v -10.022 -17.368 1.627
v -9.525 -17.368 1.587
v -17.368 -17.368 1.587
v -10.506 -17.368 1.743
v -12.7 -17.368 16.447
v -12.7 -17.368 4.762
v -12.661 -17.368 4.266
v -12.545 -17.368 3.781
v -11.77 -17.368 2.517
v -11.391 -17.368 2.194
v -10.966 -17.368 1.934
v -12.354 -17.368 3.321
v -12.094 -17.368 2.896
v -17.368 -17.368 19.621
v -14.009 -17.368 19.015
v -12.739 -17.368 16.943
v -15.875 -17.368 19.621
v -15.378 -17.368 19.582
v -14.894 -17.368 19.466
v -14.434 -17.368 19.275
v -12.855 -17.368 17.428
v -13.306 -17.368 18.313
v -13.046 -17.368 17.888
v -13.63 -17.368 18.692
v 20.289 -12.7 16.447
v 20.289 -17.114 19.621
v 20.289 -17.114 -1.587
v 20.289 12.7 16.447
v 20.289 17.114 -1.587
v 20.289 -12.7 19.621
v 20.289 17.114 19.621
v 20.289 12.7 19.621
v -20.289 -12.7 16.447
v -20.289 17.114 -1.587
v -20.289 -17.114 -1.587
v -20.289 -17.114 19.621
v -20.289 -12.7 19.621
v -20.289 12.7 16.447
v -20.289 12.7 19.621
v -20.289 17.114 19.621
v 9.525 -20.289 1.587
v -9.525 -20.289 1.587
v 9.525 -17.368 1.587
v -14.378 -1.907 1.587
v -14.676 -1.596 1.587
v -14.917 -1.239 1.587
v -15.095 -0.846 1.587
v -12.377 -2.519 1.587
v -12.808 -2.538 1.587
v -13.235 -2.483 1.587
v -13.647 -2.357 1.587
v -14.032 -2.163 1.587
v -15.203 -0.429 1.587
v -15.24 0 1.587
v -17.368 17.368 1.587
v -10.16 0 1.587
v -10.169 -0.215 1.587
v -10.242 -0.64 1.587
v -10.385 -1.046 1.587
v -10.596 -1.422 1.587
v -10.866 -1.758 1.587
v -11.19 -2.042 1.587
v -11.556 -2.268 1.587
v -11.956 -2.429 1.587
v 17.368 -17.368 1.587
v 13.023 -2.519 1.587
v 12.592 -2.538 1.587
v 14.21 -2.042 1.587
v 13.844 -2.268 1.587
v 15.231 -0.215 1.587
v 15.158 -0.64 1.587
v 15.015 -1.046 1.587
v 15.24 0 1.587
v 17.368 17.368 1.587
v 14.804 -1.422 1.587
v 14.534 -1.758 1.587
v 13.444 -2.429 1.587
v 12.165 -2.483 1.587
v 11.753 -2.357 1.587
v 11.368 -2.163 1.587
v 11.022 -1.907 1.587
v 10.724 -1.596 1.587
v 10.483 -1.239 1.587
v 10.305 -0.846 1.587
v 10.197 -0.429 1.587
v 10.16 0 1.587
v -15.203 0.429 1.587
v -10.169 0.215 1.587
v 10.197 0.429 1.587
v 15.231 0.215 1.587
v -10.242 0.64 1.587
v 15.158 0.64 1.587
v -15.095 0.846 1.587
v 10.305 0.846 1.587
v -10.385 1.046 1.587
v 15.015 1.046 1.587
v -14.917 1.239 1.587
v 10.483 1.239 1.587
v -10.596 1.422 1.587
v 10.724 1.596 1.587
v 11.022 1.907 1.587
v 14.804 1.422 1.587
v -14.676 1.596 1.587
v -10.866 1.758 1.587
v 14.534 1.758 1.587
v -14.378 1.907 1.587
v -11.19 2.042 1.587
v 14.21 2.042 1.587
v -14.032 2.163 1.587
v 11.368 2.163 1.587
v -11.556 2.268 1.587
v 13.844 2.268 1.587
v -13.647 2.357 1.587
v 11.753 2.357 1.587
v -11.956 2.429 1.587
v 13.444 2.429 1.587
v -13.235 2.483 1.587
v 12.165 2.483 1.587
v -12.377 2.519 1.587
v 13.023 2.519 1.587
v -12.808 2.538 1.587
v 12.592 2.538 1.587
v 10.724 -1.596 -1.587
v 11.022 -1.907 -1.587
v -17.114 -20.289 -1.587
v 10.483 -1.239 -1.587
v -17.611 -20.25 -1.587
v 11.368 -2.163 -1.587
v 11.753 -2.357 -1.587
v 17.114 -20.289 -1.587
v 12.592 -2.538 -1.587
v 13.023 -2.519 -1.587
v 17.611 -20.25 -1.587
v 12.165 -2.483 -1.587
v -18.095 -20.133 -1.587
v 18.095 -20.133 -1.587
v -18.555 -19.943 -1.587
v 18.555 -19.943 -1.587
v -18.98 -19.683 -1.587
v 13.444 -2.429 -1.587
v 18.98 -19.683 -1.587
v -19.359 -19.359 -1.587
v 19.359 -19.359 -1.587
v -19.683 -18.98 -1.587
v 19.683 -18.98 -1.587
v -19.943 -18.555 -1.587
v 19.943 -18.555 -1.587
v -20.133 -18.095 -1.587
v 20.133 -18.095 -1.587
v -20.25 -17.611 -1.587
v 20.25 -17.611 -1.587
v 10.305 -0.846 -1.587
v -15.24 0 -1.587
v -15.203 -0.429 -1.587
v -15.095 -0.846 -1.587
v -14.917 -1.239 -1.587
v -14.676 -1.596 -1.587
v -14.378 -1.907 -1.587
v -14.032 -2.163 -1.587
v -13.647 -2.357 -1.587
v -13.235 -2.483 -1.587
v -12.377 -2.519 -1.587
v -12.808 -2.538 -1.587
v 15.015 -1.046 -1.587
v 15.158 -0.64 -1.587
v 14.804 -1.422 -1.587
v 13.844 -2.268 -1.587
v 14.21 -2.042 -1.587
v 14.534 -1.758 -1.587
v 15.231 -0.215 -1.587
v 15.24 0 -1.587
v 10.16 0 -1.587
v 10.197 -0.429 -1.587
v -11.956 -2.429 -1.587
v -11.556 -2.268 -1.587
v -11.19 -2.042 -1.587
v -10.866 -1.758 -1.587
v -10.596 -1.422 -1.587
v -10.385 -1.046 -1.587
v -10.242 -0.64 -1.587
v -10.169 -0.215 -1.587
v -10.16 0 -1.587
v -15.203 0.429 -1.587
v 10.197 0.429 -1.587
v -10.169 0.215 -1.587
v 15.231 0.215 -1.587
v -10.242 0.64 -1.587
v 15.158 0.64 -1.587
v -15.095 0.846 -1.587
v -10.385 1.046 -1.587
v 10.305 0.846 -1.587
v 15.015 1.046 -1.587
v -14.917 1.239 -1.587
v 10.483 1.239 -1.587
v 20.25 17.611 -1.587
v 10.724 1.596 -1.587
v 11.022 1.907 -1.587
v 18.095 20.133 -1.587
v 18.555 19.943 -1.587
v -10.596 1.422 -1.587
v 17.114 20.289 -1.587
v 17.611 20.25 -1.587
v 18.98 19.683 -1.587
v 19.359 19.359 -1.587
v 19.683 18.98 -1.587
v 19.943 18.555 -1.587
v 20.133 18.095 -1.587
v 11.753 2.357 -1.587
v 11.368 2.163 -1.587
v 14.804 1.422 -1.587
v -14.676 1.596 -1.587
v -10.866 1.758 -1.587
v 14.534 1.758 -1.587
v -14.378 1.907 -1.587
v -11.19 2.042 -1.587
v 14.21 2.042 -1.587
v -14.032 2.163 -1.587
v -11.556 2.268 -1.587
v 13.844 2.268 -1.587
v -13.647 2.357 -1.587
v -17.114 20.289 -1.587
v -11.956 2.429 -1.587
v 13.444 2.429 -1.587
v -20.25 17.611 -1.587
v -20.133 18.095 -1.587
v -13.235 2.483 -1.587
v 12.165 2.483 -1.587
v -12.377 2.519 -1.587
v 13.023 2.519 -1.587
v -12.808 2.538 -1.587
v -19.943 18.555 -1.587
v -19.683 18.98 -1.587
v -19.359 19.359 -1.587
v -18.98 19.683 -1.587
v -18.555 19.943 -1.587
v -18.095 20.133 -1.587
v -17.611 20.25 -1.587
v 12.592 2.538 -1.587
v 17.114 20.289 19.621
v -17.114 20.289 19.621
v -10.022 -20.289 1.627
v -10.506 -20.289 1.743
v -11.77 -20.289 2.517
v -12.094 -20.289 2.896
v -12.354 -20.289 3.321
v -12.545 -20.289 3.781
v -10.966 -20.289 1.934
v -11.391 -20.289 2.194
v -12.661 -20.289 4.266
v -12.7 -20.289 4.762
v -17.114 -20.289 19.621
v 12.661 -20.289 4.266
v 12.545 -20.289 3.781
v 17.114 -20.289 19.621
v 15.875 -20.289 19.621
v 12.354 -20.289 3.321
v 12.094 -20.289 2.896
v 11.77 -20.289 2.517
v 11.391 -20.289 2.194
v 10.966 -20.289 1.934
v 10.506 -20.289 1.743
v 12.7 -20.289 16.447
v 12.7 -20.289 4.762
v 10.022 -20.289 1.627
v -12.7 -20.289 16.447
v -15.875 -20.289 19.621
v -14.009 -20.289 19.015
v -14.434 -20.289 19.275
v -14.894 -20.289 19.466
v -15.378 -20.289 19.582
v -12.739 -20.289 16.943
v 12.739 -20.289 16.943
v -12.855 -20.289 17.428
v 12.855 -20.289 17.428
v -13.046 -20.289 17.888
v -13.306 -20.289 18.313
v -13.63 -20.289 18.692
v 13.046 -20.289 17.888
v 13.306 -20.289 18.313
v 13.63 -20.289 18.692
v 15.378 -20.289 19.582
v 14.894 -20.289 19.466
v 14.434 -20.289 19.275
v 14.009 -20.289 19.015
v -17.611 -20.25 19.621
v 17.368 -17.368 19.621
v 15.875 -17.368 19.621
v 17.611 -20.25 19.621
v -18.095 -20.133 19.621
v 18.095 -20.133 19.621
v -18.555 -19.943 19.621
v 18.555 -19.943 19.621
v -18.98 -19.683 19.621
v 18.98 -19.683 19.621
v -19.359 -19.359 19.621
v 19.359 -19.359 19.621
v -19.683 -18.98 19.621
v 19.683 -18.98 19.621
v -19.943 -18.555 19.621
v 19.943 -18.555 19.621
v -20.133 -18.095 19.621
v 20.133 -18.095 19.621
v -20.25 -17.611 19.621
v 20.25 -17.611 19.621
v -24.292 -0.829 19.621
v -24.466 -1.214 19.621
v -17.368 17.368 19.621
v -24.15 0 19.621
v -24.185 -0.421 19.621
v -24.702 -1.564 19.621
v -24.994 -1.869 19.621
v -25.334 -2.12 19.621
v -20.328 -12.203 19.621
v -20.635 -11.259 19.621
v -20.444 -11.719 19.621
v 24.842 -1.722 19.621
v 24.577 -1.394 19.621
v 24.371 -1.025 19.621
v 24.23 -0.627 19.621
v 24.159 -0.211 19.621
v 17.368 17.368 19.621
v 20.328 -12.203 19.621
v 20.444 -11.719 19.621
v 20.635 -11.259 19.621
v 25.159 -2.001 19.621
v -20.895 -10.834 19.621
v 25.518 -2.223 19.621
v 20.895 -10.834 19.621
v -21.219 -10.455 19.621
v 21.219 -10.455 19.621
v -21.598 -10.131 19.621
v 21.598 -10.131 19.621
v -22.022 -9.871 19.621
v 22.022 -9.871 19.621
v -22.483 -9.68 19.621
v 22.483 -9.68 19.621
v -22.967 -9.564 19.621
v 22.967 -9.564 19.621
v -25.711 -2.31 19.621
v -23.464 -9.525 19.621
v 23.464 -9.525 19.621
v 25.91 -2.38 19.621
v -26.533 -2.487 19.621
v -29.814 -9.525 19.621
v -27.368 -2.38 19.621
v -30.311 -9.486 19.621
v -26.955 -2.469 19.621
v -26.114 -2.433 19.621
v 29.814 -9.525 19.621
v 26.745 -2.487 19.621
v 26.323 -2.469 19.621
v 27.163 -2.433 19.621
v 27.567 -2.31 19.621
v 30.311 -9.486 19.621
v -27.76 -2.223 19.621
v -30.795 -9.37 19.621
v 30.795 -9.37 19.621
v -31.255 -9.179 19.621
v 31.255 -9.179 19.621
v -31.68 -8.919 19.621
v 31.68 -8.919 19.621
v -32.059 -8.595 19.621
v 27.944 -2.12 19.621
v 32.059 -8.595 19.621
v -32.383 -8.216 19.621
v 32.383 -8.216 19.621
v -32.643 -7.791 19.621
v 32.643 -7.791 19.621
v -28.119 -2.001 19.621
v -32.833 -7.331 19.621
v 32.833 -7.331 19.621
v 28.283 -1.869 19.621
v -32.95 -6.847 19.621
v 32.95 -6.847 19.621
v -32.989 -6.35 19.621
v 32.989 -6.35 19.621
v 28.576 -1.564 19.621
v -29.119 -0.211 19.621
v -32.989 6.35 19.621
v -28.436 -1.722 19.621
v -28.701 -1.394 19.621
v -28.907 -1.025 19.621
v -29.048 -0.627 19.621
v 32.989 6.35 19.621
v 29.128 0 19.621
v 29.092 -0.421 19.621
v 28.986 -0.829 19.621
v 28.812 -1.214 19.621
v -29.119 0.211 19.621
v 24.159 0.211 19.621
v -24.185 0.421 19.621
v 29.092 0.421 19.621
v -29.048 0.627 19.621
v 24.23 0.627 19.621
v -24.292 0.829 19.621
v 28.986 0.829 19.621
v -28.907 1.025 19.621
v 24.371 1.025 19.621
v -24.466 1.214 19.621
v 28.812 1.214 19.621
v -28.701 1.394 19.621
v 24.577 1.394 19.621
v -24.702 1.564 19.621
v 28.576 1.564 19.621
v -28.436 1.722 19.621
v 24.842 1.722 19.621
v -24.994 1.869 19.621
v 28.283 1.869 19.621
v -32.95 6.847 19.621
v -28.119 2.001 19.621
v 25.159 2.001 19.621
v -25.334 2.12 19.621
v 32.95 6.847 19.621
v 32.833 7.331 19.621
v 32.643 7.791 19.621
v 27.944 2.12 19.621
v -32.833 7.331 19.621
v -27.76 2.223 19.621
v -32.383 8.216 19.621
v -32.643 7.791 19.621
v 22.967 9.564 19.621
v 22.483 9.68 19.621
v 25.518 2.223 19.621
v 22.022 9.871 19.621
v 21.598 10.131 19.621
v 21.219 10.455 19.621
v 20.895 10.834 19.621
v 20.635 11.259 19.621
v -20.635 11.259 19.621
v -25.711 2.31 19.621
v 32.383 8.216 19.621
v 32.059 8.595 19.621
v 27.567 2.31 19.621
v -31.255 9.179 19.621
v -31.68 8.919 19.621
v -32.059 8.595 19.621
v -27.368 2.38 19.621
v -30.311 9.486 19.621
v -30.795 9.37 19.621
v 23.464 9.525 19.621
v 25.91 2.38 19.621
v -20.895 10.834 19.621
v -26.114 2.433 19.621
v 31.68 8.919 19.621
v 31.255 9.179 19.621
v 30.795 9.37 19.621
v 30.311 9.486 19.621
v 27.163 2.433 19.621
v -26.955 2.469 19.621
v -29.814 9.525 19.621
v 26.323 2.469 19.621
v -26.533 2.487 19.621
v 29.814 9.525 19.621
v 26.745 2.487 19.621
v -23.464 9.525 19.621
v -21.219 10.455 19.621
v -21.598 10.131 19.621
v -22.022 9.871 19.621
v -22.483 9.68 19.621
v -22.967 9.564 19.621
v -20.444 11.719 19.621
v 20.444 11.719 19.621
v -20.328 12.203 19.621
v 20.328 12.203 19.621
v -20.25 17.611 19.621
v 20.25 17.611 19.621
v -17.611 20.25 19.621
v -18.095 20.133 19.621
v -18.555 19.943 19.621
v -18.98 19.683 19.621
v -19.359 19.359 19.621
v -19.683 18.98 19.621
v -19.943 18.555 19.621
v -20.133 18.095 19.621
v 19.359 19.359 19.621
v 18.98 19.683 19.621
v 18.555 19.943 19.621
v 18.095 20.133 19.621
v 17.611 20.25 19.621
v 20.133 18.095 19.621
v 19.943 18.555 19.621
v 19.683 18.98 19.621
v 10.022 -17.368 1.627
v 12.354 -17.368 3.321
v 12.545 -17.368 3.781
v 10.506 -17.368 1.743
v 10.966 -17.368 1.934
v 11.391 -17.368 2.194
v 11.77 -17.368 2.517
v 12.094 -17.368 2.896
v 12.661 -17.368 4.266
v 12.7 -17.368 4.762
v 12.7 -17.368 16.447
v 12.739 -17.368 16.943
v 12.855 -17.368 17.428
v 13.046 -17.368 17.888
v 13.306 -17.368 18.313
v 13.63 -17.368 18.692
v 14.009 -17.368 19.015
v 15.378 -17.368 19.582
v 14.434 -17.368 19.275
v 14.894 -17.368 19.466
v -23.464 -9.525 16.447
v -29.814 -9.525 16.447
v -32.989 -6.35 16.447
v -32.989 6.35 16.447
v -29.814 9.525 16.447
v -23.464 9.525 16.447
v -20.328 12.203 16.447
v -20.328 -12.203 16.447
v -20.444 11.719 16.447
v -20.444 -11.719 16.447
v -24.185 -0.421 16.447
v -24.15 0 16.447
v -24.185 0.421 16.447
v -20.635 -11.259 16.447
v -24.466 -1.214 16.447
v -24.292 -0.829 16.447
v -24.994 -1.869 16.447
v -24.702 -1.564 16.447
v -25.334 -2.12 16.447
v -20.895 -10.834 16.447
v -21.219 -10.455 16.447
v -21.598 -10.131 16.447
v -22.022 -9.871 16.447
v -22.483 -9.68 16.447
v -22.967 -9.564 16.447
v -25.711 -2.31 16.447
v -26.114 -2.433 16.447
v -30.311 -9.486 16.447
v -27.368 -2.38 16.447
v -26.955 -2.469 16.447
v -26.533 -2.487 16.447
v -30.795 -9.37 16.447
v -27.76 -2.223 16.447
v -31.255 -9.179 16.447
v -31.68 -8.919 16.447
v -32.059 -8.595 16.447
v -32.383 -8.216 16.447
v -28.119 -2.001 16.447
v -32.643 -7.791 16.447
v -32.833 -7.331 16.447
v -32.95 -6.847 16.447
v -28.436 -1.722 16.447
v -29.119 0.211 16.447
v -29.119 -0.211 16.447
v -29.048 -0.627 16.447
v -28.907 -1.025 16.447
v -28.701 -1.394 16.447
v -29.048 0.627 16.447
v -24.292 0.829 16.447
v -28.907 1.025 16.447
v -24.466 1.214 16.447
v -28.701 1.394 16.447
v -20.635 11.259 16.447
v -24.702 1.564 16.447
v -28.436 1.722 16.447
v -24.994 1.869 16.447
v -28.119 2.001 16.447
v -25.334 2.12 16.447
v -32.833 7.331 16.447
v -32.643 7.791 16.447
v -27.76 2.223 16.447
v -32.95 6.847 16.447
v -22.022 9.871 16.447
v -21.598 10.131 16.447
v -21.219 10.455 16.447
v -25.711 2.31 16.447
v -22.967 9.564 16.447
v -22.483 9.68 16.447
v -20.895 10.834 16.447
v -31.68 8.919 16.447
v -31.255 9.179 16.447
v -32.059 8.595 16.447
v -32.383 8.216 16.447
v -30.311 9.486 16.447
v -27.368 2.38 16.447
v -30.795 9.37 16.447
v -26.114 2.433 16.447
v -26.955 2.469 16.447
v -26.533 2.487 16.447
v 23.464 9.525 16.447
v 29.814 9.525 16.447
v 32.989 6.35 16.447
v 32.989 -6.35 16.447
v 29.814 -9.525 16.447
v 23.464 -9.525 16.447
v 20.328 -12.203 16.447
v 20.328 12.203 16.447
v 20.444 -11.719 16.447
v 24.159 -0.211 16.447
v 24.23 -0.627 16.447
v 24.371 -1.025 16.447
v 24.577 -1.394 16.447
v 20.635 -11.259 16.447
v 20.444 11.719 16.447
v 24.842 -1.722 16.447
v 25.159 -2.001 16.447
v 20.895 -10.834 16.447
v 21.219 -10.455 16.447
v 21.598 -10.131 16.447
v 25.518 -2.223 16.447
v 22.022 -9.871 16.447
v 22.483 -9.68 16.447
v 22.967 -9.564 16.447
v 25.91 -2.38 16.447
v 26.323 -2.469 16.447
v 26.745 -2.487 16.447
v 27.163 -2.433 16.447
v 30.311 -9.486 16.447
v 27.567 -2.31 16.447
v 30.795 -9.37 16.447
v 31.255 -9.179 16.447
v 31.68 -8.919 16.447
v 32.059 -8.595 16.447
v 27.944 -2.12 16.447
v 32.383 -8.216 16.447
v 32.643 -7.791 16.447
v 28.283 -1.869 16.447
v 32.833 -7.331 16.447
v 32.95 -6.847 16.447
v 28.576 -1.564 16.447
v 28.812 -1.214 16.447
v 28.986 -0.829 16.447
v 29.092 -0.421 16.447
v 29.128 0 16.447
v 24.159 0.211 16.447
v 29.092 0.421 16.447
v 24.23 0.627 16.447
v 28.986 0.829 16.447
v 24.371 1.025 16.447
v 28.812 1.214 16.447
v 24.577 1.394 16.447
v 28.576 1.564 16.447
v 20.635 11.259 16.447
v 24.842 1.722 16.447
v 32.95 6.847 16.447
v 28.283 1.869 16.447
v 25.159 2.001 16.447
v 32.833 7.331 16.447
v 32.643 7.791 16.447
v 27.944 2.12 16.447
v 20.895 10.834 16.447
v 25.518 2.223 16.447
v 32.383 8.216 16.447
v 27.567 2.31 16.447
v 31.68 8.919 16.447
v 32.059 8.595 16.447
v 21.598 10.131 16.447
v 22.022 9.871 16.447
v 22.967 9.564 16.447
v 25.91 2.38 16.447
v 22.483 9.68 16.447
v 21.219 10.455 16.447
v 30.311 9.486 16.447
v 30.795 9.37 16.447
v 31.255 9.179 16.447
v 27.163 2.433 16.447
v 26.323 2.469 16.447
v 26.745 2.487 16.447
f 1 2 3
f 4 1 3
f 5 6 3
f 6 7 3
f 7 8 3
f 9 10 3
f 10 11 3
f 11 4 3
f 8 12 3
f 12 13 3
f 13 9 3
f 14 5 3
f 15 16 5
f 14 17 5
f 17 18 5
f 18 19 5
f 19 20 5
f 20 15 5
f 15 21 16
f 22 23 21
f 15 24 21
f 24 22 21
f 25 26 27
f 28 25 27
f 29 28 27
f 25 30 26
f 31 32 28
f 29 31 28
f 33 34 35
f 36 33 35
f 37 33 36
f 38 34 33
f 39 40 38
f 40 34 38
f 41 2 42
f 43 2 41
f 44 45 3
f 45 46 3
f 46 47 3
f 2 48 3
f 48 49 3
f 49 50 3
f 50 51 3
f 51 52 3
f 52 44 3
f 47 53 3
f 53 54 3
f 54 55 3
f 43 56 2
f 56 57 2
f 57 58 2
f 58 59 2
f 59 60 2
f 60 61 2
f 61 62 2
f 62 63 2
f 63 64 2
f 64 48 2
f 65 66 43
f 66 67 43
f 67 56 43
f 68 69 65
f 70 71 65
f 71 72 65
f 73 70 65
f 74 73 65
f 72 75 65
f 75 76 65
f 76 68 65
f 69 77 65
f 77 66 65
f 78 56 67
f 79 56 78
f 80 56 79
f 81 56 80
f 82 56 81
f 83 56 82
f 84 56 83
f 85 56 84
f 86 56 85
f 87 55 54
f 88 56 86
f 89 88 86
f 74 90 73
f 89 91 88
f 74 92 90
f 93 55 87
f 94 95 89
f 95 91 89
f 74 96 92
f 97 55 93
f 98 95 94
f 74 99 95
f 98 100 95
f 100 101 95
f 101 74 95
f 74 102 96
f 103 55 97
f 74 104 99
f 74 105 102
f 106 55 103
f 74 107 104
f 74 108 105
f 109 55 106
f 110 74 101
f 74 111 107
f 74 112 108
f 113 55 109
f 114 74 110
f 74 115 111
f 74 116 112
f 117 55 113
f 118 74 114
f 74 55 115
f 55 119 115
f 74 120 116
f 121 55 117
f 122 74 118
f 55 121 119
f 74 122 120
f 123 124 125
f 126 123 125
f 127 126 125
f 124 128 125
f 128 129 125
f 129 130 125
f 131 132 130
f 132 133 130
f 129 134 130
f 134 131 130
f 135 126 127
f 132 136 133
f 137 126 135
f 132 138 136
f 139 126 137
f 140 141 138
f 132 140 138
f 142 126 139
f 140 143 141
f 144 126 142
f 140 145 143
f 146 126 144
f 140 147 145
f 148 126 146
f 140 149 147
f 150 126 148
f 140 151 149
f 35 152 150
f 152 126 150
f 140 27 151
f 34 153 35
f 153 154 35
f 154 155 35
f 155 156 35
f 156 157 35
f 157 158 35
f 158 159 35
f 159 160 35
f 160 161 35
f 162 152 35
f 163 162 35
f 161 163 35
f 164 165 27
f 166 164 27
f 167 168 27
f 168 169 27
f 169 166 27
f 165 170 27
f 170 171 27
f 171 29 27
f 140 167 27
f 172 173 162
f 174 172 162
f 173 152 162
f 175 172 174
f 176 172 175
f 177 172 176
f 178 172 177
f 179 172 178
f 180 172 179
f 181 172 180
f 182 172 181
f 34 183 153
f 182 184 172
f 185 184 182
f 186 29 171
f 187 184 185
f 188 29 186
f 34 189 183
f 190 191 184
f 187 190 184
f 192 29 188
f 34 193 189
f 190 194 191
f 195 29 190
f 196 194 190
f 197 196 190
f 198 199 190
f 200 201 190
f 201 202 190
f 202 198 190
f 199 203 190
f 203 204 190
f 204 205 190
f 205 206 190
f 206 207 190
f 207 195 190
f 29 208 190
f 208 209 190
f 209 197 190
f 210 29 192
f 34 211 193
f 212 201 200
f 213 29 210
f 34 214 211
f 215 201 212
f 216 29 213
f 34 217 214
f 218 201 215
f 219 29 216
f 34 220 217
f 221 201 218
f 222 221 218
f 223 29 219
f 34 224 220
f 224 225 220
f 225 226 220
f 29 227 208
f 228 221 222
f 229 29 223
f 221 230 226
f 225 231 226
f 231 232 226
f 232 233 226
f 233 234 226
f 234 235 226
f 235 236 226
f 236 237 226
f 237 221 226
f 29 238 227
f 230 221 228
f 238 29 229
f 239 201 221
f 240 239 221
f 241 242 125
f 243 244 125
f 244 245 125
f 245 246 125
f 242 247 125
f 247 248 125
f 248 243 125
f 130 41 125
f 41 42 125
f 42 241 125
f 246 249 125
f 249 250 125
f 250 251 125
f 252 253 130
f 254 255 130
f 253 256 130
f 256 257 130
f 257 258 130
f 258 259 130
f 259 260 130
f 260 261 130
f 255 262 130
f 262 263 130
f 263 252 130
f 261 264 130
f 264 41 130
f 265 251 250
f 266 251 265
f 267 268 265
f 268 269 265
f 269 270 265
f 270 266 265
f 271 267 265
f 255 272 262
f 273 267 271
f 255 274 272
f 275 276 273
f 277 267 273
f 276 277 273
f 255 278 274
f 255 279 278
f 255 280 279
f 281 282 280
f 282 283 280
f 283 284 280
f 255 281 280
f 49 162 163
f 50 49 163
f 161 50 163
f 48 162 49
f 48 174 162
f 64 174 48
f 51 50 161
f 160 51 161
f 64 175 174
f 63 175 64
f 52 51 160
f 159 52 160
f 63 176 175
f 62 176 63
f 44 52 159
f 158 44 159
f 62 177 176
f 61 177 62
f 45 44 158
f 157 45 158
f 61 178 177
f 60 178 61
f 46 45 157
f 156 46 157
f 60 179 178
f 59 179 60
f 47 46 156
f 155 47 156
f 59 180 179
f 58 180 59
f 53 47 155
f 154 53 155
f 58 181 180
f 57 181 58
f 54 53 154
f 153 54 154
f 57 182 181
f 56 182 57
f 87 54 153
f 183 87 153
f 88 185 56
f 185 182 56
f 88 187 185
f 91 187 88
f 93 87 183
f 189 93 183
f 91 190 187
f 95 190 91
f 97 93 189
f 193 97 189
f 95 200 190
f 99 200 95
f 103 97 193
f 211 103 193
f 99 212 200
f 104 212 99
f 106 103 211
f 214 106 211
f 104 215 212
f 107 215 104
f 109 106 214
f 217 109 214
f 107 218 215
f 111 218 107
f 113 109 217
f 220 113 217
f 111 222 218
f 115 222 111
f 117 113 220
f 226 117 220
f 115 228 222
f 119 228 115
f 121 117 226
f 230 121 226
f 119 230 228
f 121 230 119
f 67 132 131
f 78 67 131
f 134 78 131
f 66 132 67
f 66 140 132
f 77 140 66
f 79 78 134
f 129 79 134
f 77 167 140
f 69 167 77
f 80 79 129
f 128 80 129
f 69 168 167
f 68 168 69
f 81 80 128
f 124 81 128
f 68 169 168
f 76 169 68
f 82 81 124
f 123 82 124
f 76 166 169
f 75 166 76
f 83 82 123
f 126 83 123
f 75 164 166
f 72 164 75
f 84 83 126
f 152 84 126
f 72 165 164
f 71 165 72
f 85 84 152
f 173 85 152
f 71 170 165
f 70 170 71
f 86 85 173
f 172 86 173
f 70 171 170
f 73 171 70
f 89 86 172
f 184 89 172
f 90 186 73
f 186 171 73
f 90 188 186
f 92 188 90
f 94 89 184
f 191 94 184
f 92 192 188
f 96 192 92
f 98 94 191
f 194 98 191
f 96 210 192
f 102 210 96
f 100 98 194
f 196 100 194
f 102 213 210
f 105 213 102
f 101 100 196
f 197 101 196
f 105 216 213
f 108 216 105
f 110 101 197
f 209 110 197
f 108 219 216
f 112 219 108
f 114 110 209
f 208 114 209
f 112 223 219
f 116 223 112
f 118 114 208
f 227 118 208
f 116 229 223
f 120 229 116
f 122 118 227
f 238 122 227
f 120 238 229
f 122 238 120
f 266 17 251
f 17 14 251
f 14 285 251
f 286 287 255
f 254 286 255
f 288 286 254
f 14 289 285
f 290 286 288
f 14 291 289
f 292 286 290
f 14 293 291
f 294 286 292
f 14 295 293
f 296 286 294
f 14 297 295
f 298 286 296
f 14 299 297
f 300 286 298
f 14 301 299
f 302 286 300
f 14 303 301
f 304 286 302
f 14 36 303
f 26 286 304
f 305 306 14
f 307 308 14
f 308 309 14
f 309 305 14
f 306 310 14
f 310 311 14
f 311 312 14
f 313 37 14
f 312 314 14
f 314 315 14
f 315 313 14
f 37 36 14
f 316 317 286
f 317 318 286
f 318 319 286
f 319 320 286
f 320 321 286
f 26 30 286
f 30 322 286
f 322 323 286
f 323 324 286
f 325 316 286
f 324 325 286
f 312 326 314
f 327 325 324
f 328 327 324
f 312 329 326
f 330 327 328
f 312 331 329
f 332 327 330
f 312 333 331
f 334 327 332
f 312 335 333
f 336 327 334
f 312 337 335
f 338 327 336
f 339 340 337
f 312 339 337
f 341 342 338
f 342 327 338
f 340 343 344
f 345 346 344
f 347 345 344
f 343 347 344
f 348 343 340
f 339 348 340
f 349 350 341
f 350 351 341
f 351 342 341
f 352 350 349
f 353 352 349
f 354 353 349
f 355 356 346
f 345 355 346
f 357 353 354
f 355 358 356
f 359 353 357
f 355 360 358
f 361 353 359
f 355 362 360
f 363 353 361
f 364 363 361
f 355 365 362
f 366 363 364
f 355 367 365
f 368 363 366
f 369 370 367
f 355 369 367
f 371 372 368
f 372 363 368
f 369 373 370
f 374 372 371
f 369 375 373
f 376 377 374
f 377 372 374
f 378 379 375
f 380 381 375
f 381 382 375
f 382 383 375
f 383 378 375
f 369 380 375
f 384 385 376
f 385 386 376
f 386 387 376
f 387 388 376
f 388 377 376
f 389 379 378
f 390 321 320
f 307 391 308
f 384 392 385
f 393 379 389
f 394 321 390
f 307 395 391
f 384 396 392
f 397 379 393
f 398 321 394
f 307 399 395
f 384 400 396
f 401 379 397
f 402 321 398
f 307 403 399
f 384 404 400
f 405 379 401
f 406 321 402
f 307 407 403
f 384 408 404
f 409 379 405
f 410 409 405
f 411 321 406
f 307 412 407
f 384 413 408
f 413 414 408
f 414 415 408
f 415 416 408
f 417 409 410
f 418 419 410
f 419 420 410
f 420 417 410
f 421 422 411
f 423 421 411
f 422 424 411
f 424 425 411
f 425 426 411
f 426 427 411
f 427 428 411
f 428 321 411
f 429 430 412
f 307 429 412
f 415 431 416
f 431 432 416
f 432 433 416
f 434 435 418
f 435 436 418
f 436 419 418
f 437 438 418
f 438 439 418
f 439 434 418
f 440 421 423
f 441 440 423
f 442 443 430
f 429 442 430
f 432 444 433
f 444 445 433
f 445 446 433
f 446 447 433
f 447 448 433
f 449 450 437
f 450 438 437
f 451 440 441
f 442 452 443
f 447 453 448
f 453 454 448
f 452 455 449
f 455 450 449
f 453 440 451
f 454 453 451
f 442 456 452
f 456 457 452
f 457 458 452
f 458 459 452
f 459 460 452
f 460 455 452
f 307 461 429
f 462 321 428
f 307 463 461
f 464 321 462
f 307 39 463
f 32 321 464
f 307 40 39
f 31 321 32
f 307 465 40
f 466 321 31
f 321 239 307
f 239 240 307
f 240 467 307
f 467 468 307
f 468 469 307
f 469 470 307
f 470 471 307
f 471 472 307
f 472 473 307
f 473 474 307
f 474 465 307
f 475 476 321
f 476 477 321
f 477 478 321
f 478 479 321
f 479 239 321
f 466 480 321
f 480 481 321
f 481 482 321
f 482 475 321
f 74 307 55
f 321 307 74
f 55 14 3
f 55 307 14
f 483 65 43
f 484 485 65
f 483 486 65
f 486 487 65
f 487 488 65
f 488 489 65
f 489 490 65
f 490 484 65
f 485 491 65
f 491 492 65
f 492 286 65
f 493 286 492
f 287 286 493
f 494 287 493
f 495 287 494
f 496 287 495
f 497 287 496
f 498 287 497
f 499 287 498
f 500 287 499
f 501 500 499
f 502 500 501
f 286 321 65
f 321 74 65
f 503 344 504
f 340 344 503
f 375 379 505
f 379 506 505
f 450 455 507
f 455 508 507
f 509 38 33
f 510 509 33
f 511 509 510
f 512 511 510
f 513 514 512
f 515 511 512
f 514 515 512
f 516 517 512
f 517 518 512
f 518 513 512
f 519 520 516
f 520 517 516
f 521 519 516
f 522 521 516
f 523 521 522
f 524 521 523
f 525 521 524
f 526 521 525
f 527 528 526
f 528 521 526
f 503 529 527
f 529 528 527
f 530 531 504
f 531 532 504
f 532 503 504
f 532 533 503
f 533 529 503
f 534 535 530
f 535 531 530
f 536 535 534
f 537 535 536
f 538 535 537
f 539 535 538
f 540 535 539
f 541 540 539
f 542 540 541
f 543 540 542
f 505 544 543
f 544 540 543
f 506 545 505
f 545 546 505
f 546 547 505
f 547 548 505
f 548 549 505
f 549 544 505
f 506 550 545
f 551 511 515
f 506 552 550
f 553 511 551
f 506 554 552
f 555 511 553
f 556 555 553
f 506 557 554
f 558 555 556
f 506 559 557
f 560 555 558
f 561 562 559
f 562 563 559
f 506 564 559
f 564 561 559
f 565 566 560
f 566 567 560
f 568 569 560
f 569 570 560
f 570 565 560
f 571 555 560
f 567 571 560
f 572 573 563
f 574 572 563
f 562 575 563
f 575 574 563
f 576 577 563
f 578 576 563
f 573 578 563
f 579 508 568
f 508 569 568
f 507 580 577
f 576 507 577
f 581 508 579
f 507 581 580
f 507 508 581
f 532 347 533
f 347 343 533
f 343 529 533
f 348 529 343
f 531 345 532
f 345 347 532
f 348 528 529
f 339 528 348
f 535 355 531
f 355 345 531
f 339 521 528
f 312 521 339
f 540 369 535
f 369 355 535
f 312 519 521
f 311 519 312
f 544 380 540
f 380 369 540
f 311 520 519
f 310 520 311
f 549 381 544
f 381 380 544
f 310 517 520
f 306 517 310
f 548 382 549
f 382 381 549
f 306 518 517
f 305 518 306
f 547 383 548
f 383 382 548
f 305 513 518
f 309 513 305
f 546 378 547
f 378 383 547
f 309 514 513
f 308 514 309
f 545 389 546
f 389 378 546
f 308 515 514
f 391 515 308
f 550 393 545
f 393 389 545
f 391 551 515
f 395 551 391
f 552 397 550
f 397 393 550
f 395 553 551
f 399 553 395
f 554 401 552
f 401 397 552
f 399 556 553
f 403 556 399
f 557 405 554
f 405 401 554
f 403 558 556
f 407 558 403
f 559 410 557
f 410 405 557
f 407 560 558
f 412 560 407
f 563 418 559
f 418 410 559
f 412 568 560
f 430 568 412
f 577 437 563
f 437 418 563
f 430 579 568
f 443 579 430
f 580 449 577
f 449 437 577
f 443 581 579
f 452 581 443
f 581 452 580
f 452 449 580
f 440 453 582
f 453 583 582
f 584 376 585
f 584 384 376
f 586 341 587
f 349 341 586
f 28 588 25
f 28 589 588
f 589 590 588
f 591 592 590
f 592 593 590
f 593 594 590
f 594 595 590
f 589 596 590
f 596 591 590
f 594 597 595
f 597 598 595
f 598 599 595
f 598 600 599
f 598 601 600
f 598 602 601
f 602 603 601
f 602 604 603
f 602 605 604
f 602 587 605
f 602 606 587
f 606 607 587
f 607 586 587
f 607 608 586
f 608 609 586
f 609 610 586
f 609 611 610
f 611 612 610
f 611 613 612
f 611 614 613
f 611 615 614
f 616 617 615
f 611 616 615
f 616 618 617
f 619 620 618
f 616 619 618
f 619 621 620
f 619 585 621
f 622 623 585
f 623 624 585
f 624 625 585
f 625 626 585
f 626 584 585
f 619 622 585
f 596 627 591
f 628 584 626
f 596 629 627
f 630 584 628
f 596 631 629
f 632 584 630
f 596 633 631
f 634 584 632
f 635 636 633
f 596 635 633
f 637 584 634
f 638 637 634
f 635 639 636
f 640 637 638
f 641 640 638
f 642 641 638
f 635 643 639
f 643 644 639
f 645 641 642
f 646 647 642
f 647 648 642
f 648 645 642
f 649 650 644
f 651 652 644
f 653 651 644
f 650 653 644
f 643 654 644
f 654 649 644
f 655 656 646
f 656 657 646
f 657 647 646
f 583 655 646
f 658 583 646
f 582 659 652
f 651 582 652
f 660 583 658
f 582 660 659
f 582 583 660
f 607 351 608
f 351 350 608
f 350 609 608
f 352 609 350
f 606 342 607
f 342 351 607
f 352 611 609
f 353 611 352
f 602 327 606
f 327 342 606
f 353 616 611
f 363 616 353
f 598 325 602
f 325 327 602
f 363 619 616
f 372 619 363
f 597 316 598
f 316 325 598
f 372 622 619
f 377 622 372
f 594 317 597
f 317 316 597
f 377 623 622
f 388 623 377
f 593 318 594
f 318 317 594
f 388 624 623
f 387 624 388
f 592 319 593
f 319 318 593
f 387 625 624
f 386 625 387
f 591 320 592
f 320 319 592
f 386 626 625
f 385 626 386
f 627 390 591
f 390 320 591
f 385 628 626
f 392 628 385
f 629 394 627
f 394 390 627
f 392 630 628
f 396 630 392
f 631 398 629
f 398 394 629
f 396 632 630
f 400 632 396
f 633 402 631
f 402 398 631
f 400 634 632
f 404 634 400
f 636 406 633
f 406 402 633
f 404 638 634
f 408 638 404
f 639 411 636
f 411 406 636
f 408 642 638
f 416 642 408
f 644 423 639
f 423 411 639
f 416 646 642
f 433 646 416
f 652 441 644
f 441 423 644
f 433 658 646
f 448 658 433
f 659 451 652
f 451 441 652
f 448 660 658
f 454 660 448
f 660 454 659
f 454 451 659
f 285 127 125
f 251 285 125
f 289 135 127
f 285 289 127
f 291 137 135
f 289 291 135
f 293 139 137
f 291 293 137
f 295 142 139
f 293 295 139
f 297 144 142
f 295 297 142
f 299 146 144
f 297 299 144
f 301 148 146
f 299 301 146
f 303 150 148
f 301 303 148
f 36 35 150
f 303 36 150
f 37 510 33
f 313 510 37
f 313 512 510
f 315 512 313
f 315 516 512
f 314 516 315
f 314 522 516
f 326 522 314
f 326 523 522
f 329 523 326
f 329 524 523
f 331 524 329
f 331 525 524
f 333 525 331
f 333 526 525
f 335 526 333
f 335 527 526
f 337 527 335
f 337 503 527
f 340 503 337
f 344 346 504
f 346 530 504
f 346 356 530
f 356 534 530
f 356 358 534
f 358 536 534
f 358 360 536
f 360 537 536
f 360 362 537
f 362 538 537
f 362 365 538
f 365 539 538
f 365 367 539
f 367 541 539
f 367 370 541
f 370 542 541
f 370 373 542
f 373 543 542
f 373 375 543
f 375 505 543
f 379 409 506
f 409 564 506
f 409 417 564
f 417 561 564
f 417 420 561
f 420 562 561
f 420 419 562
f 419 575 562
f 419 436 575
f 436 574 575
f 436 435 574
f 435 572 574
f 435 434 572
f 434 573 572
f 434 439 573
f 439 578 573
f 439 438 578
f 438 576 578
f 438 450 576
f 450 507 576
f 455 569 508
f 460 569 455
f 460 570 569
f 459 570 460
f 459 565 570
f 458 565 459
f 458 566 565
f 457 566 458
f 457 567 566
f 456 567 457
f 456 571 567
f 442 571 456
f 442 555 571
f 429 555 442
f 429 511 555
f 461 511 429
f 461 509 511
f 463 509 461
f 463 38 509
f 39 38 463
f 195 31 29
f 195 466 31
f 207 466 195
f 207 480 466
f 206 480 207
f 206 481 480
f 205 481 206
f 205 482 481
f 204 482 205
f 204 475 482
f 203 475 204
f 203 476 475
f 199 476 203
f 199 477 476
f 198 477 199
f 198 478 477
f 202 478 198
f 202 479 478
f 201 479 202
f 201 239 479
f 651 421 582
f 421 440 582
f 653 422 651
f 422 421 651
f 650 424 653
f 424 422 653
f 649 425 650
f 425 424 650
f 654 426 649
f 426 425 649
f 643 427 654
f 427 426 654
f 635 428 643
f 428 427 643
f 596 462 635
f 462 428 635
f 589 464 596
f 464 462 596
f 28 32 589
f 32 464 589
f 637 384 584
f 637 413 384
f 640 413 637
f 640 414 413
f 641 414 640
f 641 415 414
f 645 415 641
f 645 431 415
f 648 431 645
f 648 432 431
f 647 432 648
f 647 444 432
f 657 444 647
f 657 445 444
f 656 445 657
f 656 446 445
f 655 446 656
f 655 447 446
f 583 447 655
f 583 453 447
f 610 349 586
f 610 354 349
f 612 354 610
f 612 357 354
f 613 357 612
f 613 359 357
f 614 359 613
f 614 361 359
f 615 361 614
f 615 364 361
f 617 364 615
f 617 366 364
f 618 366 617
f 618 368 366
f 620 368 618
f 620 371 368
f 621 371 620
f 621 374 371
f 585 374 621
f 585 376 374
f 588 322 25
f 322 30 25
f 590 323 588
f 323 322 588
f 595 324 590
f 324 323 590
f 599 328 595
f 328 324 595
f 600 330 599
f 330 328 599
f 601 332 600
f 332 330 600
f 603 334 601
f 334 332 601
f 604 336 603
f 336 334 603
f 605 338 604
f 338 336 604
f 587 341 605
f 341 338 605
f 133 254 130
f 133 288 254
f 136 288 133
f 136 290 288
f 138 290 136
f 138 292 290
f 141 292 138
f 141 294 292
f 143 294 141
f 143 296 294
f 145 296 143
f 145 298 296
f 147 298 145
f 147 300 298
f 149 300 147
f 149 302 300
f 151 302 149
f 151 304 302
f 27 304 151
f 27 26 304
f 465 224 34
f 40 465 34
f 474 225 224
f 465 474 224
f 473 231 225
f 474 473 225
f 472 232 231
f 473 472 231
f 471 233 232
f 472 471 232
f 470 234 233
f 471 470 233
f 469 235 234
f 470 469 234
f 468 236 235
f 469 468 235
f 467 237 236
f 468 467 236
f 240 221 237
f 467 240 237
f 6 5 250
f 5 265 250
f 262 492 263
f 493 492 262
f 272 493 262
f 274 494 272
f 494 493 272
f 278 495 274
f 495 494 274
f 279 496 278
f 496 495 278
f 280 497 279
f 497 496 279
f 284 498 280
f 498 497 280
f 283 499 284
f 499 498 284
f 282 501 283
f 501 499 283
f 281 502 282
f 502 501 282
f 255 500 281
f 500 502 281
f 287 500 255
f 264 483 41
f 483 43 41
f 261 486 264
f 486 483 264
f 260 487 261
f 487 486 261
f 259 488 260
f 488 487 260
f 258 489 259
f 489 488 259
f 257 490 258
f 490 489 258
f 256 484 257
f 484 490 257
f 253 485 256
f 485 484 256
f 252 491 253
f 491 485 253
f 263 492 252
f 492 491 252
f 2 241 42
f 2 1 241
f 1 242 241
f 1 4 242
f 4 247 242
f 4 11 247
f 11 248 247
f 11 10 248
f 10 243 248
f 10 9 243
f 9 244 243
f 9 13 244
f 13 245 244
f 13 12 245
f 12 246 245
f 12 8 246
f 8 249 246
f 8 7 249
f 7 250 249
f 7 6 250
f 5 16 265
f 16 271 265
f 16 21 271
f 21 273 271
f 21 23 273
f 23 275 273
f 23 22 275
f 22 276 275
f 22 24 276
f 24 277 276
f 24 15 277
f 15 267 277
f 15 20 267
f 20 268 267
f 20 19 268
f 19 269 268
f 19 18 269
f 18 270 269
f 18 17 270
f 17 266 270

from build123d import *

# Parameters (mm, degrees)
SKETCH1_W           = 40.57777
SKETCH1_H           = 40.57777
SKETCH1_R           = 2.54
BOSS_EXTRUDE1_DEPTH = 1.5875
SKETCH3_W           = 40.57777
SKETCH3_H           = 40.57777
SKETCH3_W_2         = 34.73577
SKETCH3_H_2         = 34.73577
BOSS_EXTRUDE2_DEPTH = 18.034
SKETCH4_W           = 12.7
SKETCH4_H           = 19.05
SKETCH4_R           = 2.4892
BOSS_EXTRUDE3_DEPTH = 3.175
FILLET1_R           = 3.175
SKETCH6_W           = 25.4
SKETCH6_H           = 18.034
CUT_EXTRUDE2_DEPTH  = 3.175
FILLET3_R           = 3.175


with BuildPart() as part:
    # Sketch1 → Boss-Extrude1 (new, symmetric)
    with BuildSketch(Plane.XY):
        Rectangle(SKETCH1_W, SKETCH1_H)
        with Locations((-12.7, 0)):
            Circle(SKETCH1_R, mode=Mode.SUBTRACT)
        with Locations((12.7, 0)):
            Circle(SKETCH1_R, mode=Mode.SUBTRACT)
    extrude(amount=BOSS_EXTRUDE1_DEPTH, both=True)

    # Sketch3 → Boss-Extrude2 (add)
    with BuildSketch(Plane.XY.offset(1.5875)):
        Rectangle(SKETCH3_W, SKETCH3_H)
        Rectangle(SKETCH3_W_2, SKETCH3_H_2, mode=Mode.SUBTRACT)
    extrude(amount=BOSS_EXTRUDE2_DEPTH)

    # Sketch4 → Boss-Extrude3 (add)
    # profile 1 of 2: a face of its own
    with BuildSketch(Plane.XY.offset(19.6215)):
        with Locations((-26.638885, 0)):
            Rectangle(SKETCH4_W, SKETCH4_H)
        with Locations((-26.638885, 0)):
            Circle(SKETCH4_R, mode=Mode.SUBTRACT)
    # profile 2 of 2: a face of its own
    with BuildSketch(Plane.XY.offset(19.6215)):
        with Locations((26.638885, 0)):
            Rectangle(SKETCH4_W, SKETCH4_H)
        with Locations((26.638885, 0)):
            Circle(SKETCH4_R, mode=Mode.SUBTRACT)
    extrude(amount=-BOSS_EXTRUDE3_DEPTH)

    # Fillet1
    fillet1_edges = [part.edges().sort_by_distance(p)[0] for p in [
        (-20.288885, 9.525, 18.034),
        (-20.288885, -9.525, 18.034),
        (-32.988885, -9.525, 18.034),
        (-32.988885, 9.525, 18.034),
        (20.288885, -9.525, 18.034),
        (20.288885, 9.525, 18.034),
        (32.988885, 9.525, 18.034),
        (32.988885, -9.525, 18.034),
        (20.288885, -20.288885, 9.017),
        (-20.288885, -20.288885, 9.017),
        (-20.288885, 20.288885, 9.017),
        (20.288885, 20.288885, 9.017),
    ]]
    fillet(fillet1_edges, radius=FILLET1_R)

    # Sketch6 → Cut-Extrude2 (cut)
    with BuildSketch(Plane.XZ.offset(20.288885)):
        with Locations((0, 10.6045)):
            Rectangle(SKETCH6_W, SKETCH6_H)
    extrude(amount=-CUT_EXTRUDE2_DEPTH, mode=Mode.SUBTRACT)

    # Fillet3
    fillet3_edges = [part.edges().sort_by_distance(p)[0] for p in [
        (-12.7, -18.828385, 1.5875),
        (-12.7, -18.828385, 19.6215),
        (12.7, -18.828385, 19.6215),
        (12.7, -18.828385, 1.5875),
    ]]
    fillet(fillet3_edges, radius=FILLET3_R)


solid = part.part
